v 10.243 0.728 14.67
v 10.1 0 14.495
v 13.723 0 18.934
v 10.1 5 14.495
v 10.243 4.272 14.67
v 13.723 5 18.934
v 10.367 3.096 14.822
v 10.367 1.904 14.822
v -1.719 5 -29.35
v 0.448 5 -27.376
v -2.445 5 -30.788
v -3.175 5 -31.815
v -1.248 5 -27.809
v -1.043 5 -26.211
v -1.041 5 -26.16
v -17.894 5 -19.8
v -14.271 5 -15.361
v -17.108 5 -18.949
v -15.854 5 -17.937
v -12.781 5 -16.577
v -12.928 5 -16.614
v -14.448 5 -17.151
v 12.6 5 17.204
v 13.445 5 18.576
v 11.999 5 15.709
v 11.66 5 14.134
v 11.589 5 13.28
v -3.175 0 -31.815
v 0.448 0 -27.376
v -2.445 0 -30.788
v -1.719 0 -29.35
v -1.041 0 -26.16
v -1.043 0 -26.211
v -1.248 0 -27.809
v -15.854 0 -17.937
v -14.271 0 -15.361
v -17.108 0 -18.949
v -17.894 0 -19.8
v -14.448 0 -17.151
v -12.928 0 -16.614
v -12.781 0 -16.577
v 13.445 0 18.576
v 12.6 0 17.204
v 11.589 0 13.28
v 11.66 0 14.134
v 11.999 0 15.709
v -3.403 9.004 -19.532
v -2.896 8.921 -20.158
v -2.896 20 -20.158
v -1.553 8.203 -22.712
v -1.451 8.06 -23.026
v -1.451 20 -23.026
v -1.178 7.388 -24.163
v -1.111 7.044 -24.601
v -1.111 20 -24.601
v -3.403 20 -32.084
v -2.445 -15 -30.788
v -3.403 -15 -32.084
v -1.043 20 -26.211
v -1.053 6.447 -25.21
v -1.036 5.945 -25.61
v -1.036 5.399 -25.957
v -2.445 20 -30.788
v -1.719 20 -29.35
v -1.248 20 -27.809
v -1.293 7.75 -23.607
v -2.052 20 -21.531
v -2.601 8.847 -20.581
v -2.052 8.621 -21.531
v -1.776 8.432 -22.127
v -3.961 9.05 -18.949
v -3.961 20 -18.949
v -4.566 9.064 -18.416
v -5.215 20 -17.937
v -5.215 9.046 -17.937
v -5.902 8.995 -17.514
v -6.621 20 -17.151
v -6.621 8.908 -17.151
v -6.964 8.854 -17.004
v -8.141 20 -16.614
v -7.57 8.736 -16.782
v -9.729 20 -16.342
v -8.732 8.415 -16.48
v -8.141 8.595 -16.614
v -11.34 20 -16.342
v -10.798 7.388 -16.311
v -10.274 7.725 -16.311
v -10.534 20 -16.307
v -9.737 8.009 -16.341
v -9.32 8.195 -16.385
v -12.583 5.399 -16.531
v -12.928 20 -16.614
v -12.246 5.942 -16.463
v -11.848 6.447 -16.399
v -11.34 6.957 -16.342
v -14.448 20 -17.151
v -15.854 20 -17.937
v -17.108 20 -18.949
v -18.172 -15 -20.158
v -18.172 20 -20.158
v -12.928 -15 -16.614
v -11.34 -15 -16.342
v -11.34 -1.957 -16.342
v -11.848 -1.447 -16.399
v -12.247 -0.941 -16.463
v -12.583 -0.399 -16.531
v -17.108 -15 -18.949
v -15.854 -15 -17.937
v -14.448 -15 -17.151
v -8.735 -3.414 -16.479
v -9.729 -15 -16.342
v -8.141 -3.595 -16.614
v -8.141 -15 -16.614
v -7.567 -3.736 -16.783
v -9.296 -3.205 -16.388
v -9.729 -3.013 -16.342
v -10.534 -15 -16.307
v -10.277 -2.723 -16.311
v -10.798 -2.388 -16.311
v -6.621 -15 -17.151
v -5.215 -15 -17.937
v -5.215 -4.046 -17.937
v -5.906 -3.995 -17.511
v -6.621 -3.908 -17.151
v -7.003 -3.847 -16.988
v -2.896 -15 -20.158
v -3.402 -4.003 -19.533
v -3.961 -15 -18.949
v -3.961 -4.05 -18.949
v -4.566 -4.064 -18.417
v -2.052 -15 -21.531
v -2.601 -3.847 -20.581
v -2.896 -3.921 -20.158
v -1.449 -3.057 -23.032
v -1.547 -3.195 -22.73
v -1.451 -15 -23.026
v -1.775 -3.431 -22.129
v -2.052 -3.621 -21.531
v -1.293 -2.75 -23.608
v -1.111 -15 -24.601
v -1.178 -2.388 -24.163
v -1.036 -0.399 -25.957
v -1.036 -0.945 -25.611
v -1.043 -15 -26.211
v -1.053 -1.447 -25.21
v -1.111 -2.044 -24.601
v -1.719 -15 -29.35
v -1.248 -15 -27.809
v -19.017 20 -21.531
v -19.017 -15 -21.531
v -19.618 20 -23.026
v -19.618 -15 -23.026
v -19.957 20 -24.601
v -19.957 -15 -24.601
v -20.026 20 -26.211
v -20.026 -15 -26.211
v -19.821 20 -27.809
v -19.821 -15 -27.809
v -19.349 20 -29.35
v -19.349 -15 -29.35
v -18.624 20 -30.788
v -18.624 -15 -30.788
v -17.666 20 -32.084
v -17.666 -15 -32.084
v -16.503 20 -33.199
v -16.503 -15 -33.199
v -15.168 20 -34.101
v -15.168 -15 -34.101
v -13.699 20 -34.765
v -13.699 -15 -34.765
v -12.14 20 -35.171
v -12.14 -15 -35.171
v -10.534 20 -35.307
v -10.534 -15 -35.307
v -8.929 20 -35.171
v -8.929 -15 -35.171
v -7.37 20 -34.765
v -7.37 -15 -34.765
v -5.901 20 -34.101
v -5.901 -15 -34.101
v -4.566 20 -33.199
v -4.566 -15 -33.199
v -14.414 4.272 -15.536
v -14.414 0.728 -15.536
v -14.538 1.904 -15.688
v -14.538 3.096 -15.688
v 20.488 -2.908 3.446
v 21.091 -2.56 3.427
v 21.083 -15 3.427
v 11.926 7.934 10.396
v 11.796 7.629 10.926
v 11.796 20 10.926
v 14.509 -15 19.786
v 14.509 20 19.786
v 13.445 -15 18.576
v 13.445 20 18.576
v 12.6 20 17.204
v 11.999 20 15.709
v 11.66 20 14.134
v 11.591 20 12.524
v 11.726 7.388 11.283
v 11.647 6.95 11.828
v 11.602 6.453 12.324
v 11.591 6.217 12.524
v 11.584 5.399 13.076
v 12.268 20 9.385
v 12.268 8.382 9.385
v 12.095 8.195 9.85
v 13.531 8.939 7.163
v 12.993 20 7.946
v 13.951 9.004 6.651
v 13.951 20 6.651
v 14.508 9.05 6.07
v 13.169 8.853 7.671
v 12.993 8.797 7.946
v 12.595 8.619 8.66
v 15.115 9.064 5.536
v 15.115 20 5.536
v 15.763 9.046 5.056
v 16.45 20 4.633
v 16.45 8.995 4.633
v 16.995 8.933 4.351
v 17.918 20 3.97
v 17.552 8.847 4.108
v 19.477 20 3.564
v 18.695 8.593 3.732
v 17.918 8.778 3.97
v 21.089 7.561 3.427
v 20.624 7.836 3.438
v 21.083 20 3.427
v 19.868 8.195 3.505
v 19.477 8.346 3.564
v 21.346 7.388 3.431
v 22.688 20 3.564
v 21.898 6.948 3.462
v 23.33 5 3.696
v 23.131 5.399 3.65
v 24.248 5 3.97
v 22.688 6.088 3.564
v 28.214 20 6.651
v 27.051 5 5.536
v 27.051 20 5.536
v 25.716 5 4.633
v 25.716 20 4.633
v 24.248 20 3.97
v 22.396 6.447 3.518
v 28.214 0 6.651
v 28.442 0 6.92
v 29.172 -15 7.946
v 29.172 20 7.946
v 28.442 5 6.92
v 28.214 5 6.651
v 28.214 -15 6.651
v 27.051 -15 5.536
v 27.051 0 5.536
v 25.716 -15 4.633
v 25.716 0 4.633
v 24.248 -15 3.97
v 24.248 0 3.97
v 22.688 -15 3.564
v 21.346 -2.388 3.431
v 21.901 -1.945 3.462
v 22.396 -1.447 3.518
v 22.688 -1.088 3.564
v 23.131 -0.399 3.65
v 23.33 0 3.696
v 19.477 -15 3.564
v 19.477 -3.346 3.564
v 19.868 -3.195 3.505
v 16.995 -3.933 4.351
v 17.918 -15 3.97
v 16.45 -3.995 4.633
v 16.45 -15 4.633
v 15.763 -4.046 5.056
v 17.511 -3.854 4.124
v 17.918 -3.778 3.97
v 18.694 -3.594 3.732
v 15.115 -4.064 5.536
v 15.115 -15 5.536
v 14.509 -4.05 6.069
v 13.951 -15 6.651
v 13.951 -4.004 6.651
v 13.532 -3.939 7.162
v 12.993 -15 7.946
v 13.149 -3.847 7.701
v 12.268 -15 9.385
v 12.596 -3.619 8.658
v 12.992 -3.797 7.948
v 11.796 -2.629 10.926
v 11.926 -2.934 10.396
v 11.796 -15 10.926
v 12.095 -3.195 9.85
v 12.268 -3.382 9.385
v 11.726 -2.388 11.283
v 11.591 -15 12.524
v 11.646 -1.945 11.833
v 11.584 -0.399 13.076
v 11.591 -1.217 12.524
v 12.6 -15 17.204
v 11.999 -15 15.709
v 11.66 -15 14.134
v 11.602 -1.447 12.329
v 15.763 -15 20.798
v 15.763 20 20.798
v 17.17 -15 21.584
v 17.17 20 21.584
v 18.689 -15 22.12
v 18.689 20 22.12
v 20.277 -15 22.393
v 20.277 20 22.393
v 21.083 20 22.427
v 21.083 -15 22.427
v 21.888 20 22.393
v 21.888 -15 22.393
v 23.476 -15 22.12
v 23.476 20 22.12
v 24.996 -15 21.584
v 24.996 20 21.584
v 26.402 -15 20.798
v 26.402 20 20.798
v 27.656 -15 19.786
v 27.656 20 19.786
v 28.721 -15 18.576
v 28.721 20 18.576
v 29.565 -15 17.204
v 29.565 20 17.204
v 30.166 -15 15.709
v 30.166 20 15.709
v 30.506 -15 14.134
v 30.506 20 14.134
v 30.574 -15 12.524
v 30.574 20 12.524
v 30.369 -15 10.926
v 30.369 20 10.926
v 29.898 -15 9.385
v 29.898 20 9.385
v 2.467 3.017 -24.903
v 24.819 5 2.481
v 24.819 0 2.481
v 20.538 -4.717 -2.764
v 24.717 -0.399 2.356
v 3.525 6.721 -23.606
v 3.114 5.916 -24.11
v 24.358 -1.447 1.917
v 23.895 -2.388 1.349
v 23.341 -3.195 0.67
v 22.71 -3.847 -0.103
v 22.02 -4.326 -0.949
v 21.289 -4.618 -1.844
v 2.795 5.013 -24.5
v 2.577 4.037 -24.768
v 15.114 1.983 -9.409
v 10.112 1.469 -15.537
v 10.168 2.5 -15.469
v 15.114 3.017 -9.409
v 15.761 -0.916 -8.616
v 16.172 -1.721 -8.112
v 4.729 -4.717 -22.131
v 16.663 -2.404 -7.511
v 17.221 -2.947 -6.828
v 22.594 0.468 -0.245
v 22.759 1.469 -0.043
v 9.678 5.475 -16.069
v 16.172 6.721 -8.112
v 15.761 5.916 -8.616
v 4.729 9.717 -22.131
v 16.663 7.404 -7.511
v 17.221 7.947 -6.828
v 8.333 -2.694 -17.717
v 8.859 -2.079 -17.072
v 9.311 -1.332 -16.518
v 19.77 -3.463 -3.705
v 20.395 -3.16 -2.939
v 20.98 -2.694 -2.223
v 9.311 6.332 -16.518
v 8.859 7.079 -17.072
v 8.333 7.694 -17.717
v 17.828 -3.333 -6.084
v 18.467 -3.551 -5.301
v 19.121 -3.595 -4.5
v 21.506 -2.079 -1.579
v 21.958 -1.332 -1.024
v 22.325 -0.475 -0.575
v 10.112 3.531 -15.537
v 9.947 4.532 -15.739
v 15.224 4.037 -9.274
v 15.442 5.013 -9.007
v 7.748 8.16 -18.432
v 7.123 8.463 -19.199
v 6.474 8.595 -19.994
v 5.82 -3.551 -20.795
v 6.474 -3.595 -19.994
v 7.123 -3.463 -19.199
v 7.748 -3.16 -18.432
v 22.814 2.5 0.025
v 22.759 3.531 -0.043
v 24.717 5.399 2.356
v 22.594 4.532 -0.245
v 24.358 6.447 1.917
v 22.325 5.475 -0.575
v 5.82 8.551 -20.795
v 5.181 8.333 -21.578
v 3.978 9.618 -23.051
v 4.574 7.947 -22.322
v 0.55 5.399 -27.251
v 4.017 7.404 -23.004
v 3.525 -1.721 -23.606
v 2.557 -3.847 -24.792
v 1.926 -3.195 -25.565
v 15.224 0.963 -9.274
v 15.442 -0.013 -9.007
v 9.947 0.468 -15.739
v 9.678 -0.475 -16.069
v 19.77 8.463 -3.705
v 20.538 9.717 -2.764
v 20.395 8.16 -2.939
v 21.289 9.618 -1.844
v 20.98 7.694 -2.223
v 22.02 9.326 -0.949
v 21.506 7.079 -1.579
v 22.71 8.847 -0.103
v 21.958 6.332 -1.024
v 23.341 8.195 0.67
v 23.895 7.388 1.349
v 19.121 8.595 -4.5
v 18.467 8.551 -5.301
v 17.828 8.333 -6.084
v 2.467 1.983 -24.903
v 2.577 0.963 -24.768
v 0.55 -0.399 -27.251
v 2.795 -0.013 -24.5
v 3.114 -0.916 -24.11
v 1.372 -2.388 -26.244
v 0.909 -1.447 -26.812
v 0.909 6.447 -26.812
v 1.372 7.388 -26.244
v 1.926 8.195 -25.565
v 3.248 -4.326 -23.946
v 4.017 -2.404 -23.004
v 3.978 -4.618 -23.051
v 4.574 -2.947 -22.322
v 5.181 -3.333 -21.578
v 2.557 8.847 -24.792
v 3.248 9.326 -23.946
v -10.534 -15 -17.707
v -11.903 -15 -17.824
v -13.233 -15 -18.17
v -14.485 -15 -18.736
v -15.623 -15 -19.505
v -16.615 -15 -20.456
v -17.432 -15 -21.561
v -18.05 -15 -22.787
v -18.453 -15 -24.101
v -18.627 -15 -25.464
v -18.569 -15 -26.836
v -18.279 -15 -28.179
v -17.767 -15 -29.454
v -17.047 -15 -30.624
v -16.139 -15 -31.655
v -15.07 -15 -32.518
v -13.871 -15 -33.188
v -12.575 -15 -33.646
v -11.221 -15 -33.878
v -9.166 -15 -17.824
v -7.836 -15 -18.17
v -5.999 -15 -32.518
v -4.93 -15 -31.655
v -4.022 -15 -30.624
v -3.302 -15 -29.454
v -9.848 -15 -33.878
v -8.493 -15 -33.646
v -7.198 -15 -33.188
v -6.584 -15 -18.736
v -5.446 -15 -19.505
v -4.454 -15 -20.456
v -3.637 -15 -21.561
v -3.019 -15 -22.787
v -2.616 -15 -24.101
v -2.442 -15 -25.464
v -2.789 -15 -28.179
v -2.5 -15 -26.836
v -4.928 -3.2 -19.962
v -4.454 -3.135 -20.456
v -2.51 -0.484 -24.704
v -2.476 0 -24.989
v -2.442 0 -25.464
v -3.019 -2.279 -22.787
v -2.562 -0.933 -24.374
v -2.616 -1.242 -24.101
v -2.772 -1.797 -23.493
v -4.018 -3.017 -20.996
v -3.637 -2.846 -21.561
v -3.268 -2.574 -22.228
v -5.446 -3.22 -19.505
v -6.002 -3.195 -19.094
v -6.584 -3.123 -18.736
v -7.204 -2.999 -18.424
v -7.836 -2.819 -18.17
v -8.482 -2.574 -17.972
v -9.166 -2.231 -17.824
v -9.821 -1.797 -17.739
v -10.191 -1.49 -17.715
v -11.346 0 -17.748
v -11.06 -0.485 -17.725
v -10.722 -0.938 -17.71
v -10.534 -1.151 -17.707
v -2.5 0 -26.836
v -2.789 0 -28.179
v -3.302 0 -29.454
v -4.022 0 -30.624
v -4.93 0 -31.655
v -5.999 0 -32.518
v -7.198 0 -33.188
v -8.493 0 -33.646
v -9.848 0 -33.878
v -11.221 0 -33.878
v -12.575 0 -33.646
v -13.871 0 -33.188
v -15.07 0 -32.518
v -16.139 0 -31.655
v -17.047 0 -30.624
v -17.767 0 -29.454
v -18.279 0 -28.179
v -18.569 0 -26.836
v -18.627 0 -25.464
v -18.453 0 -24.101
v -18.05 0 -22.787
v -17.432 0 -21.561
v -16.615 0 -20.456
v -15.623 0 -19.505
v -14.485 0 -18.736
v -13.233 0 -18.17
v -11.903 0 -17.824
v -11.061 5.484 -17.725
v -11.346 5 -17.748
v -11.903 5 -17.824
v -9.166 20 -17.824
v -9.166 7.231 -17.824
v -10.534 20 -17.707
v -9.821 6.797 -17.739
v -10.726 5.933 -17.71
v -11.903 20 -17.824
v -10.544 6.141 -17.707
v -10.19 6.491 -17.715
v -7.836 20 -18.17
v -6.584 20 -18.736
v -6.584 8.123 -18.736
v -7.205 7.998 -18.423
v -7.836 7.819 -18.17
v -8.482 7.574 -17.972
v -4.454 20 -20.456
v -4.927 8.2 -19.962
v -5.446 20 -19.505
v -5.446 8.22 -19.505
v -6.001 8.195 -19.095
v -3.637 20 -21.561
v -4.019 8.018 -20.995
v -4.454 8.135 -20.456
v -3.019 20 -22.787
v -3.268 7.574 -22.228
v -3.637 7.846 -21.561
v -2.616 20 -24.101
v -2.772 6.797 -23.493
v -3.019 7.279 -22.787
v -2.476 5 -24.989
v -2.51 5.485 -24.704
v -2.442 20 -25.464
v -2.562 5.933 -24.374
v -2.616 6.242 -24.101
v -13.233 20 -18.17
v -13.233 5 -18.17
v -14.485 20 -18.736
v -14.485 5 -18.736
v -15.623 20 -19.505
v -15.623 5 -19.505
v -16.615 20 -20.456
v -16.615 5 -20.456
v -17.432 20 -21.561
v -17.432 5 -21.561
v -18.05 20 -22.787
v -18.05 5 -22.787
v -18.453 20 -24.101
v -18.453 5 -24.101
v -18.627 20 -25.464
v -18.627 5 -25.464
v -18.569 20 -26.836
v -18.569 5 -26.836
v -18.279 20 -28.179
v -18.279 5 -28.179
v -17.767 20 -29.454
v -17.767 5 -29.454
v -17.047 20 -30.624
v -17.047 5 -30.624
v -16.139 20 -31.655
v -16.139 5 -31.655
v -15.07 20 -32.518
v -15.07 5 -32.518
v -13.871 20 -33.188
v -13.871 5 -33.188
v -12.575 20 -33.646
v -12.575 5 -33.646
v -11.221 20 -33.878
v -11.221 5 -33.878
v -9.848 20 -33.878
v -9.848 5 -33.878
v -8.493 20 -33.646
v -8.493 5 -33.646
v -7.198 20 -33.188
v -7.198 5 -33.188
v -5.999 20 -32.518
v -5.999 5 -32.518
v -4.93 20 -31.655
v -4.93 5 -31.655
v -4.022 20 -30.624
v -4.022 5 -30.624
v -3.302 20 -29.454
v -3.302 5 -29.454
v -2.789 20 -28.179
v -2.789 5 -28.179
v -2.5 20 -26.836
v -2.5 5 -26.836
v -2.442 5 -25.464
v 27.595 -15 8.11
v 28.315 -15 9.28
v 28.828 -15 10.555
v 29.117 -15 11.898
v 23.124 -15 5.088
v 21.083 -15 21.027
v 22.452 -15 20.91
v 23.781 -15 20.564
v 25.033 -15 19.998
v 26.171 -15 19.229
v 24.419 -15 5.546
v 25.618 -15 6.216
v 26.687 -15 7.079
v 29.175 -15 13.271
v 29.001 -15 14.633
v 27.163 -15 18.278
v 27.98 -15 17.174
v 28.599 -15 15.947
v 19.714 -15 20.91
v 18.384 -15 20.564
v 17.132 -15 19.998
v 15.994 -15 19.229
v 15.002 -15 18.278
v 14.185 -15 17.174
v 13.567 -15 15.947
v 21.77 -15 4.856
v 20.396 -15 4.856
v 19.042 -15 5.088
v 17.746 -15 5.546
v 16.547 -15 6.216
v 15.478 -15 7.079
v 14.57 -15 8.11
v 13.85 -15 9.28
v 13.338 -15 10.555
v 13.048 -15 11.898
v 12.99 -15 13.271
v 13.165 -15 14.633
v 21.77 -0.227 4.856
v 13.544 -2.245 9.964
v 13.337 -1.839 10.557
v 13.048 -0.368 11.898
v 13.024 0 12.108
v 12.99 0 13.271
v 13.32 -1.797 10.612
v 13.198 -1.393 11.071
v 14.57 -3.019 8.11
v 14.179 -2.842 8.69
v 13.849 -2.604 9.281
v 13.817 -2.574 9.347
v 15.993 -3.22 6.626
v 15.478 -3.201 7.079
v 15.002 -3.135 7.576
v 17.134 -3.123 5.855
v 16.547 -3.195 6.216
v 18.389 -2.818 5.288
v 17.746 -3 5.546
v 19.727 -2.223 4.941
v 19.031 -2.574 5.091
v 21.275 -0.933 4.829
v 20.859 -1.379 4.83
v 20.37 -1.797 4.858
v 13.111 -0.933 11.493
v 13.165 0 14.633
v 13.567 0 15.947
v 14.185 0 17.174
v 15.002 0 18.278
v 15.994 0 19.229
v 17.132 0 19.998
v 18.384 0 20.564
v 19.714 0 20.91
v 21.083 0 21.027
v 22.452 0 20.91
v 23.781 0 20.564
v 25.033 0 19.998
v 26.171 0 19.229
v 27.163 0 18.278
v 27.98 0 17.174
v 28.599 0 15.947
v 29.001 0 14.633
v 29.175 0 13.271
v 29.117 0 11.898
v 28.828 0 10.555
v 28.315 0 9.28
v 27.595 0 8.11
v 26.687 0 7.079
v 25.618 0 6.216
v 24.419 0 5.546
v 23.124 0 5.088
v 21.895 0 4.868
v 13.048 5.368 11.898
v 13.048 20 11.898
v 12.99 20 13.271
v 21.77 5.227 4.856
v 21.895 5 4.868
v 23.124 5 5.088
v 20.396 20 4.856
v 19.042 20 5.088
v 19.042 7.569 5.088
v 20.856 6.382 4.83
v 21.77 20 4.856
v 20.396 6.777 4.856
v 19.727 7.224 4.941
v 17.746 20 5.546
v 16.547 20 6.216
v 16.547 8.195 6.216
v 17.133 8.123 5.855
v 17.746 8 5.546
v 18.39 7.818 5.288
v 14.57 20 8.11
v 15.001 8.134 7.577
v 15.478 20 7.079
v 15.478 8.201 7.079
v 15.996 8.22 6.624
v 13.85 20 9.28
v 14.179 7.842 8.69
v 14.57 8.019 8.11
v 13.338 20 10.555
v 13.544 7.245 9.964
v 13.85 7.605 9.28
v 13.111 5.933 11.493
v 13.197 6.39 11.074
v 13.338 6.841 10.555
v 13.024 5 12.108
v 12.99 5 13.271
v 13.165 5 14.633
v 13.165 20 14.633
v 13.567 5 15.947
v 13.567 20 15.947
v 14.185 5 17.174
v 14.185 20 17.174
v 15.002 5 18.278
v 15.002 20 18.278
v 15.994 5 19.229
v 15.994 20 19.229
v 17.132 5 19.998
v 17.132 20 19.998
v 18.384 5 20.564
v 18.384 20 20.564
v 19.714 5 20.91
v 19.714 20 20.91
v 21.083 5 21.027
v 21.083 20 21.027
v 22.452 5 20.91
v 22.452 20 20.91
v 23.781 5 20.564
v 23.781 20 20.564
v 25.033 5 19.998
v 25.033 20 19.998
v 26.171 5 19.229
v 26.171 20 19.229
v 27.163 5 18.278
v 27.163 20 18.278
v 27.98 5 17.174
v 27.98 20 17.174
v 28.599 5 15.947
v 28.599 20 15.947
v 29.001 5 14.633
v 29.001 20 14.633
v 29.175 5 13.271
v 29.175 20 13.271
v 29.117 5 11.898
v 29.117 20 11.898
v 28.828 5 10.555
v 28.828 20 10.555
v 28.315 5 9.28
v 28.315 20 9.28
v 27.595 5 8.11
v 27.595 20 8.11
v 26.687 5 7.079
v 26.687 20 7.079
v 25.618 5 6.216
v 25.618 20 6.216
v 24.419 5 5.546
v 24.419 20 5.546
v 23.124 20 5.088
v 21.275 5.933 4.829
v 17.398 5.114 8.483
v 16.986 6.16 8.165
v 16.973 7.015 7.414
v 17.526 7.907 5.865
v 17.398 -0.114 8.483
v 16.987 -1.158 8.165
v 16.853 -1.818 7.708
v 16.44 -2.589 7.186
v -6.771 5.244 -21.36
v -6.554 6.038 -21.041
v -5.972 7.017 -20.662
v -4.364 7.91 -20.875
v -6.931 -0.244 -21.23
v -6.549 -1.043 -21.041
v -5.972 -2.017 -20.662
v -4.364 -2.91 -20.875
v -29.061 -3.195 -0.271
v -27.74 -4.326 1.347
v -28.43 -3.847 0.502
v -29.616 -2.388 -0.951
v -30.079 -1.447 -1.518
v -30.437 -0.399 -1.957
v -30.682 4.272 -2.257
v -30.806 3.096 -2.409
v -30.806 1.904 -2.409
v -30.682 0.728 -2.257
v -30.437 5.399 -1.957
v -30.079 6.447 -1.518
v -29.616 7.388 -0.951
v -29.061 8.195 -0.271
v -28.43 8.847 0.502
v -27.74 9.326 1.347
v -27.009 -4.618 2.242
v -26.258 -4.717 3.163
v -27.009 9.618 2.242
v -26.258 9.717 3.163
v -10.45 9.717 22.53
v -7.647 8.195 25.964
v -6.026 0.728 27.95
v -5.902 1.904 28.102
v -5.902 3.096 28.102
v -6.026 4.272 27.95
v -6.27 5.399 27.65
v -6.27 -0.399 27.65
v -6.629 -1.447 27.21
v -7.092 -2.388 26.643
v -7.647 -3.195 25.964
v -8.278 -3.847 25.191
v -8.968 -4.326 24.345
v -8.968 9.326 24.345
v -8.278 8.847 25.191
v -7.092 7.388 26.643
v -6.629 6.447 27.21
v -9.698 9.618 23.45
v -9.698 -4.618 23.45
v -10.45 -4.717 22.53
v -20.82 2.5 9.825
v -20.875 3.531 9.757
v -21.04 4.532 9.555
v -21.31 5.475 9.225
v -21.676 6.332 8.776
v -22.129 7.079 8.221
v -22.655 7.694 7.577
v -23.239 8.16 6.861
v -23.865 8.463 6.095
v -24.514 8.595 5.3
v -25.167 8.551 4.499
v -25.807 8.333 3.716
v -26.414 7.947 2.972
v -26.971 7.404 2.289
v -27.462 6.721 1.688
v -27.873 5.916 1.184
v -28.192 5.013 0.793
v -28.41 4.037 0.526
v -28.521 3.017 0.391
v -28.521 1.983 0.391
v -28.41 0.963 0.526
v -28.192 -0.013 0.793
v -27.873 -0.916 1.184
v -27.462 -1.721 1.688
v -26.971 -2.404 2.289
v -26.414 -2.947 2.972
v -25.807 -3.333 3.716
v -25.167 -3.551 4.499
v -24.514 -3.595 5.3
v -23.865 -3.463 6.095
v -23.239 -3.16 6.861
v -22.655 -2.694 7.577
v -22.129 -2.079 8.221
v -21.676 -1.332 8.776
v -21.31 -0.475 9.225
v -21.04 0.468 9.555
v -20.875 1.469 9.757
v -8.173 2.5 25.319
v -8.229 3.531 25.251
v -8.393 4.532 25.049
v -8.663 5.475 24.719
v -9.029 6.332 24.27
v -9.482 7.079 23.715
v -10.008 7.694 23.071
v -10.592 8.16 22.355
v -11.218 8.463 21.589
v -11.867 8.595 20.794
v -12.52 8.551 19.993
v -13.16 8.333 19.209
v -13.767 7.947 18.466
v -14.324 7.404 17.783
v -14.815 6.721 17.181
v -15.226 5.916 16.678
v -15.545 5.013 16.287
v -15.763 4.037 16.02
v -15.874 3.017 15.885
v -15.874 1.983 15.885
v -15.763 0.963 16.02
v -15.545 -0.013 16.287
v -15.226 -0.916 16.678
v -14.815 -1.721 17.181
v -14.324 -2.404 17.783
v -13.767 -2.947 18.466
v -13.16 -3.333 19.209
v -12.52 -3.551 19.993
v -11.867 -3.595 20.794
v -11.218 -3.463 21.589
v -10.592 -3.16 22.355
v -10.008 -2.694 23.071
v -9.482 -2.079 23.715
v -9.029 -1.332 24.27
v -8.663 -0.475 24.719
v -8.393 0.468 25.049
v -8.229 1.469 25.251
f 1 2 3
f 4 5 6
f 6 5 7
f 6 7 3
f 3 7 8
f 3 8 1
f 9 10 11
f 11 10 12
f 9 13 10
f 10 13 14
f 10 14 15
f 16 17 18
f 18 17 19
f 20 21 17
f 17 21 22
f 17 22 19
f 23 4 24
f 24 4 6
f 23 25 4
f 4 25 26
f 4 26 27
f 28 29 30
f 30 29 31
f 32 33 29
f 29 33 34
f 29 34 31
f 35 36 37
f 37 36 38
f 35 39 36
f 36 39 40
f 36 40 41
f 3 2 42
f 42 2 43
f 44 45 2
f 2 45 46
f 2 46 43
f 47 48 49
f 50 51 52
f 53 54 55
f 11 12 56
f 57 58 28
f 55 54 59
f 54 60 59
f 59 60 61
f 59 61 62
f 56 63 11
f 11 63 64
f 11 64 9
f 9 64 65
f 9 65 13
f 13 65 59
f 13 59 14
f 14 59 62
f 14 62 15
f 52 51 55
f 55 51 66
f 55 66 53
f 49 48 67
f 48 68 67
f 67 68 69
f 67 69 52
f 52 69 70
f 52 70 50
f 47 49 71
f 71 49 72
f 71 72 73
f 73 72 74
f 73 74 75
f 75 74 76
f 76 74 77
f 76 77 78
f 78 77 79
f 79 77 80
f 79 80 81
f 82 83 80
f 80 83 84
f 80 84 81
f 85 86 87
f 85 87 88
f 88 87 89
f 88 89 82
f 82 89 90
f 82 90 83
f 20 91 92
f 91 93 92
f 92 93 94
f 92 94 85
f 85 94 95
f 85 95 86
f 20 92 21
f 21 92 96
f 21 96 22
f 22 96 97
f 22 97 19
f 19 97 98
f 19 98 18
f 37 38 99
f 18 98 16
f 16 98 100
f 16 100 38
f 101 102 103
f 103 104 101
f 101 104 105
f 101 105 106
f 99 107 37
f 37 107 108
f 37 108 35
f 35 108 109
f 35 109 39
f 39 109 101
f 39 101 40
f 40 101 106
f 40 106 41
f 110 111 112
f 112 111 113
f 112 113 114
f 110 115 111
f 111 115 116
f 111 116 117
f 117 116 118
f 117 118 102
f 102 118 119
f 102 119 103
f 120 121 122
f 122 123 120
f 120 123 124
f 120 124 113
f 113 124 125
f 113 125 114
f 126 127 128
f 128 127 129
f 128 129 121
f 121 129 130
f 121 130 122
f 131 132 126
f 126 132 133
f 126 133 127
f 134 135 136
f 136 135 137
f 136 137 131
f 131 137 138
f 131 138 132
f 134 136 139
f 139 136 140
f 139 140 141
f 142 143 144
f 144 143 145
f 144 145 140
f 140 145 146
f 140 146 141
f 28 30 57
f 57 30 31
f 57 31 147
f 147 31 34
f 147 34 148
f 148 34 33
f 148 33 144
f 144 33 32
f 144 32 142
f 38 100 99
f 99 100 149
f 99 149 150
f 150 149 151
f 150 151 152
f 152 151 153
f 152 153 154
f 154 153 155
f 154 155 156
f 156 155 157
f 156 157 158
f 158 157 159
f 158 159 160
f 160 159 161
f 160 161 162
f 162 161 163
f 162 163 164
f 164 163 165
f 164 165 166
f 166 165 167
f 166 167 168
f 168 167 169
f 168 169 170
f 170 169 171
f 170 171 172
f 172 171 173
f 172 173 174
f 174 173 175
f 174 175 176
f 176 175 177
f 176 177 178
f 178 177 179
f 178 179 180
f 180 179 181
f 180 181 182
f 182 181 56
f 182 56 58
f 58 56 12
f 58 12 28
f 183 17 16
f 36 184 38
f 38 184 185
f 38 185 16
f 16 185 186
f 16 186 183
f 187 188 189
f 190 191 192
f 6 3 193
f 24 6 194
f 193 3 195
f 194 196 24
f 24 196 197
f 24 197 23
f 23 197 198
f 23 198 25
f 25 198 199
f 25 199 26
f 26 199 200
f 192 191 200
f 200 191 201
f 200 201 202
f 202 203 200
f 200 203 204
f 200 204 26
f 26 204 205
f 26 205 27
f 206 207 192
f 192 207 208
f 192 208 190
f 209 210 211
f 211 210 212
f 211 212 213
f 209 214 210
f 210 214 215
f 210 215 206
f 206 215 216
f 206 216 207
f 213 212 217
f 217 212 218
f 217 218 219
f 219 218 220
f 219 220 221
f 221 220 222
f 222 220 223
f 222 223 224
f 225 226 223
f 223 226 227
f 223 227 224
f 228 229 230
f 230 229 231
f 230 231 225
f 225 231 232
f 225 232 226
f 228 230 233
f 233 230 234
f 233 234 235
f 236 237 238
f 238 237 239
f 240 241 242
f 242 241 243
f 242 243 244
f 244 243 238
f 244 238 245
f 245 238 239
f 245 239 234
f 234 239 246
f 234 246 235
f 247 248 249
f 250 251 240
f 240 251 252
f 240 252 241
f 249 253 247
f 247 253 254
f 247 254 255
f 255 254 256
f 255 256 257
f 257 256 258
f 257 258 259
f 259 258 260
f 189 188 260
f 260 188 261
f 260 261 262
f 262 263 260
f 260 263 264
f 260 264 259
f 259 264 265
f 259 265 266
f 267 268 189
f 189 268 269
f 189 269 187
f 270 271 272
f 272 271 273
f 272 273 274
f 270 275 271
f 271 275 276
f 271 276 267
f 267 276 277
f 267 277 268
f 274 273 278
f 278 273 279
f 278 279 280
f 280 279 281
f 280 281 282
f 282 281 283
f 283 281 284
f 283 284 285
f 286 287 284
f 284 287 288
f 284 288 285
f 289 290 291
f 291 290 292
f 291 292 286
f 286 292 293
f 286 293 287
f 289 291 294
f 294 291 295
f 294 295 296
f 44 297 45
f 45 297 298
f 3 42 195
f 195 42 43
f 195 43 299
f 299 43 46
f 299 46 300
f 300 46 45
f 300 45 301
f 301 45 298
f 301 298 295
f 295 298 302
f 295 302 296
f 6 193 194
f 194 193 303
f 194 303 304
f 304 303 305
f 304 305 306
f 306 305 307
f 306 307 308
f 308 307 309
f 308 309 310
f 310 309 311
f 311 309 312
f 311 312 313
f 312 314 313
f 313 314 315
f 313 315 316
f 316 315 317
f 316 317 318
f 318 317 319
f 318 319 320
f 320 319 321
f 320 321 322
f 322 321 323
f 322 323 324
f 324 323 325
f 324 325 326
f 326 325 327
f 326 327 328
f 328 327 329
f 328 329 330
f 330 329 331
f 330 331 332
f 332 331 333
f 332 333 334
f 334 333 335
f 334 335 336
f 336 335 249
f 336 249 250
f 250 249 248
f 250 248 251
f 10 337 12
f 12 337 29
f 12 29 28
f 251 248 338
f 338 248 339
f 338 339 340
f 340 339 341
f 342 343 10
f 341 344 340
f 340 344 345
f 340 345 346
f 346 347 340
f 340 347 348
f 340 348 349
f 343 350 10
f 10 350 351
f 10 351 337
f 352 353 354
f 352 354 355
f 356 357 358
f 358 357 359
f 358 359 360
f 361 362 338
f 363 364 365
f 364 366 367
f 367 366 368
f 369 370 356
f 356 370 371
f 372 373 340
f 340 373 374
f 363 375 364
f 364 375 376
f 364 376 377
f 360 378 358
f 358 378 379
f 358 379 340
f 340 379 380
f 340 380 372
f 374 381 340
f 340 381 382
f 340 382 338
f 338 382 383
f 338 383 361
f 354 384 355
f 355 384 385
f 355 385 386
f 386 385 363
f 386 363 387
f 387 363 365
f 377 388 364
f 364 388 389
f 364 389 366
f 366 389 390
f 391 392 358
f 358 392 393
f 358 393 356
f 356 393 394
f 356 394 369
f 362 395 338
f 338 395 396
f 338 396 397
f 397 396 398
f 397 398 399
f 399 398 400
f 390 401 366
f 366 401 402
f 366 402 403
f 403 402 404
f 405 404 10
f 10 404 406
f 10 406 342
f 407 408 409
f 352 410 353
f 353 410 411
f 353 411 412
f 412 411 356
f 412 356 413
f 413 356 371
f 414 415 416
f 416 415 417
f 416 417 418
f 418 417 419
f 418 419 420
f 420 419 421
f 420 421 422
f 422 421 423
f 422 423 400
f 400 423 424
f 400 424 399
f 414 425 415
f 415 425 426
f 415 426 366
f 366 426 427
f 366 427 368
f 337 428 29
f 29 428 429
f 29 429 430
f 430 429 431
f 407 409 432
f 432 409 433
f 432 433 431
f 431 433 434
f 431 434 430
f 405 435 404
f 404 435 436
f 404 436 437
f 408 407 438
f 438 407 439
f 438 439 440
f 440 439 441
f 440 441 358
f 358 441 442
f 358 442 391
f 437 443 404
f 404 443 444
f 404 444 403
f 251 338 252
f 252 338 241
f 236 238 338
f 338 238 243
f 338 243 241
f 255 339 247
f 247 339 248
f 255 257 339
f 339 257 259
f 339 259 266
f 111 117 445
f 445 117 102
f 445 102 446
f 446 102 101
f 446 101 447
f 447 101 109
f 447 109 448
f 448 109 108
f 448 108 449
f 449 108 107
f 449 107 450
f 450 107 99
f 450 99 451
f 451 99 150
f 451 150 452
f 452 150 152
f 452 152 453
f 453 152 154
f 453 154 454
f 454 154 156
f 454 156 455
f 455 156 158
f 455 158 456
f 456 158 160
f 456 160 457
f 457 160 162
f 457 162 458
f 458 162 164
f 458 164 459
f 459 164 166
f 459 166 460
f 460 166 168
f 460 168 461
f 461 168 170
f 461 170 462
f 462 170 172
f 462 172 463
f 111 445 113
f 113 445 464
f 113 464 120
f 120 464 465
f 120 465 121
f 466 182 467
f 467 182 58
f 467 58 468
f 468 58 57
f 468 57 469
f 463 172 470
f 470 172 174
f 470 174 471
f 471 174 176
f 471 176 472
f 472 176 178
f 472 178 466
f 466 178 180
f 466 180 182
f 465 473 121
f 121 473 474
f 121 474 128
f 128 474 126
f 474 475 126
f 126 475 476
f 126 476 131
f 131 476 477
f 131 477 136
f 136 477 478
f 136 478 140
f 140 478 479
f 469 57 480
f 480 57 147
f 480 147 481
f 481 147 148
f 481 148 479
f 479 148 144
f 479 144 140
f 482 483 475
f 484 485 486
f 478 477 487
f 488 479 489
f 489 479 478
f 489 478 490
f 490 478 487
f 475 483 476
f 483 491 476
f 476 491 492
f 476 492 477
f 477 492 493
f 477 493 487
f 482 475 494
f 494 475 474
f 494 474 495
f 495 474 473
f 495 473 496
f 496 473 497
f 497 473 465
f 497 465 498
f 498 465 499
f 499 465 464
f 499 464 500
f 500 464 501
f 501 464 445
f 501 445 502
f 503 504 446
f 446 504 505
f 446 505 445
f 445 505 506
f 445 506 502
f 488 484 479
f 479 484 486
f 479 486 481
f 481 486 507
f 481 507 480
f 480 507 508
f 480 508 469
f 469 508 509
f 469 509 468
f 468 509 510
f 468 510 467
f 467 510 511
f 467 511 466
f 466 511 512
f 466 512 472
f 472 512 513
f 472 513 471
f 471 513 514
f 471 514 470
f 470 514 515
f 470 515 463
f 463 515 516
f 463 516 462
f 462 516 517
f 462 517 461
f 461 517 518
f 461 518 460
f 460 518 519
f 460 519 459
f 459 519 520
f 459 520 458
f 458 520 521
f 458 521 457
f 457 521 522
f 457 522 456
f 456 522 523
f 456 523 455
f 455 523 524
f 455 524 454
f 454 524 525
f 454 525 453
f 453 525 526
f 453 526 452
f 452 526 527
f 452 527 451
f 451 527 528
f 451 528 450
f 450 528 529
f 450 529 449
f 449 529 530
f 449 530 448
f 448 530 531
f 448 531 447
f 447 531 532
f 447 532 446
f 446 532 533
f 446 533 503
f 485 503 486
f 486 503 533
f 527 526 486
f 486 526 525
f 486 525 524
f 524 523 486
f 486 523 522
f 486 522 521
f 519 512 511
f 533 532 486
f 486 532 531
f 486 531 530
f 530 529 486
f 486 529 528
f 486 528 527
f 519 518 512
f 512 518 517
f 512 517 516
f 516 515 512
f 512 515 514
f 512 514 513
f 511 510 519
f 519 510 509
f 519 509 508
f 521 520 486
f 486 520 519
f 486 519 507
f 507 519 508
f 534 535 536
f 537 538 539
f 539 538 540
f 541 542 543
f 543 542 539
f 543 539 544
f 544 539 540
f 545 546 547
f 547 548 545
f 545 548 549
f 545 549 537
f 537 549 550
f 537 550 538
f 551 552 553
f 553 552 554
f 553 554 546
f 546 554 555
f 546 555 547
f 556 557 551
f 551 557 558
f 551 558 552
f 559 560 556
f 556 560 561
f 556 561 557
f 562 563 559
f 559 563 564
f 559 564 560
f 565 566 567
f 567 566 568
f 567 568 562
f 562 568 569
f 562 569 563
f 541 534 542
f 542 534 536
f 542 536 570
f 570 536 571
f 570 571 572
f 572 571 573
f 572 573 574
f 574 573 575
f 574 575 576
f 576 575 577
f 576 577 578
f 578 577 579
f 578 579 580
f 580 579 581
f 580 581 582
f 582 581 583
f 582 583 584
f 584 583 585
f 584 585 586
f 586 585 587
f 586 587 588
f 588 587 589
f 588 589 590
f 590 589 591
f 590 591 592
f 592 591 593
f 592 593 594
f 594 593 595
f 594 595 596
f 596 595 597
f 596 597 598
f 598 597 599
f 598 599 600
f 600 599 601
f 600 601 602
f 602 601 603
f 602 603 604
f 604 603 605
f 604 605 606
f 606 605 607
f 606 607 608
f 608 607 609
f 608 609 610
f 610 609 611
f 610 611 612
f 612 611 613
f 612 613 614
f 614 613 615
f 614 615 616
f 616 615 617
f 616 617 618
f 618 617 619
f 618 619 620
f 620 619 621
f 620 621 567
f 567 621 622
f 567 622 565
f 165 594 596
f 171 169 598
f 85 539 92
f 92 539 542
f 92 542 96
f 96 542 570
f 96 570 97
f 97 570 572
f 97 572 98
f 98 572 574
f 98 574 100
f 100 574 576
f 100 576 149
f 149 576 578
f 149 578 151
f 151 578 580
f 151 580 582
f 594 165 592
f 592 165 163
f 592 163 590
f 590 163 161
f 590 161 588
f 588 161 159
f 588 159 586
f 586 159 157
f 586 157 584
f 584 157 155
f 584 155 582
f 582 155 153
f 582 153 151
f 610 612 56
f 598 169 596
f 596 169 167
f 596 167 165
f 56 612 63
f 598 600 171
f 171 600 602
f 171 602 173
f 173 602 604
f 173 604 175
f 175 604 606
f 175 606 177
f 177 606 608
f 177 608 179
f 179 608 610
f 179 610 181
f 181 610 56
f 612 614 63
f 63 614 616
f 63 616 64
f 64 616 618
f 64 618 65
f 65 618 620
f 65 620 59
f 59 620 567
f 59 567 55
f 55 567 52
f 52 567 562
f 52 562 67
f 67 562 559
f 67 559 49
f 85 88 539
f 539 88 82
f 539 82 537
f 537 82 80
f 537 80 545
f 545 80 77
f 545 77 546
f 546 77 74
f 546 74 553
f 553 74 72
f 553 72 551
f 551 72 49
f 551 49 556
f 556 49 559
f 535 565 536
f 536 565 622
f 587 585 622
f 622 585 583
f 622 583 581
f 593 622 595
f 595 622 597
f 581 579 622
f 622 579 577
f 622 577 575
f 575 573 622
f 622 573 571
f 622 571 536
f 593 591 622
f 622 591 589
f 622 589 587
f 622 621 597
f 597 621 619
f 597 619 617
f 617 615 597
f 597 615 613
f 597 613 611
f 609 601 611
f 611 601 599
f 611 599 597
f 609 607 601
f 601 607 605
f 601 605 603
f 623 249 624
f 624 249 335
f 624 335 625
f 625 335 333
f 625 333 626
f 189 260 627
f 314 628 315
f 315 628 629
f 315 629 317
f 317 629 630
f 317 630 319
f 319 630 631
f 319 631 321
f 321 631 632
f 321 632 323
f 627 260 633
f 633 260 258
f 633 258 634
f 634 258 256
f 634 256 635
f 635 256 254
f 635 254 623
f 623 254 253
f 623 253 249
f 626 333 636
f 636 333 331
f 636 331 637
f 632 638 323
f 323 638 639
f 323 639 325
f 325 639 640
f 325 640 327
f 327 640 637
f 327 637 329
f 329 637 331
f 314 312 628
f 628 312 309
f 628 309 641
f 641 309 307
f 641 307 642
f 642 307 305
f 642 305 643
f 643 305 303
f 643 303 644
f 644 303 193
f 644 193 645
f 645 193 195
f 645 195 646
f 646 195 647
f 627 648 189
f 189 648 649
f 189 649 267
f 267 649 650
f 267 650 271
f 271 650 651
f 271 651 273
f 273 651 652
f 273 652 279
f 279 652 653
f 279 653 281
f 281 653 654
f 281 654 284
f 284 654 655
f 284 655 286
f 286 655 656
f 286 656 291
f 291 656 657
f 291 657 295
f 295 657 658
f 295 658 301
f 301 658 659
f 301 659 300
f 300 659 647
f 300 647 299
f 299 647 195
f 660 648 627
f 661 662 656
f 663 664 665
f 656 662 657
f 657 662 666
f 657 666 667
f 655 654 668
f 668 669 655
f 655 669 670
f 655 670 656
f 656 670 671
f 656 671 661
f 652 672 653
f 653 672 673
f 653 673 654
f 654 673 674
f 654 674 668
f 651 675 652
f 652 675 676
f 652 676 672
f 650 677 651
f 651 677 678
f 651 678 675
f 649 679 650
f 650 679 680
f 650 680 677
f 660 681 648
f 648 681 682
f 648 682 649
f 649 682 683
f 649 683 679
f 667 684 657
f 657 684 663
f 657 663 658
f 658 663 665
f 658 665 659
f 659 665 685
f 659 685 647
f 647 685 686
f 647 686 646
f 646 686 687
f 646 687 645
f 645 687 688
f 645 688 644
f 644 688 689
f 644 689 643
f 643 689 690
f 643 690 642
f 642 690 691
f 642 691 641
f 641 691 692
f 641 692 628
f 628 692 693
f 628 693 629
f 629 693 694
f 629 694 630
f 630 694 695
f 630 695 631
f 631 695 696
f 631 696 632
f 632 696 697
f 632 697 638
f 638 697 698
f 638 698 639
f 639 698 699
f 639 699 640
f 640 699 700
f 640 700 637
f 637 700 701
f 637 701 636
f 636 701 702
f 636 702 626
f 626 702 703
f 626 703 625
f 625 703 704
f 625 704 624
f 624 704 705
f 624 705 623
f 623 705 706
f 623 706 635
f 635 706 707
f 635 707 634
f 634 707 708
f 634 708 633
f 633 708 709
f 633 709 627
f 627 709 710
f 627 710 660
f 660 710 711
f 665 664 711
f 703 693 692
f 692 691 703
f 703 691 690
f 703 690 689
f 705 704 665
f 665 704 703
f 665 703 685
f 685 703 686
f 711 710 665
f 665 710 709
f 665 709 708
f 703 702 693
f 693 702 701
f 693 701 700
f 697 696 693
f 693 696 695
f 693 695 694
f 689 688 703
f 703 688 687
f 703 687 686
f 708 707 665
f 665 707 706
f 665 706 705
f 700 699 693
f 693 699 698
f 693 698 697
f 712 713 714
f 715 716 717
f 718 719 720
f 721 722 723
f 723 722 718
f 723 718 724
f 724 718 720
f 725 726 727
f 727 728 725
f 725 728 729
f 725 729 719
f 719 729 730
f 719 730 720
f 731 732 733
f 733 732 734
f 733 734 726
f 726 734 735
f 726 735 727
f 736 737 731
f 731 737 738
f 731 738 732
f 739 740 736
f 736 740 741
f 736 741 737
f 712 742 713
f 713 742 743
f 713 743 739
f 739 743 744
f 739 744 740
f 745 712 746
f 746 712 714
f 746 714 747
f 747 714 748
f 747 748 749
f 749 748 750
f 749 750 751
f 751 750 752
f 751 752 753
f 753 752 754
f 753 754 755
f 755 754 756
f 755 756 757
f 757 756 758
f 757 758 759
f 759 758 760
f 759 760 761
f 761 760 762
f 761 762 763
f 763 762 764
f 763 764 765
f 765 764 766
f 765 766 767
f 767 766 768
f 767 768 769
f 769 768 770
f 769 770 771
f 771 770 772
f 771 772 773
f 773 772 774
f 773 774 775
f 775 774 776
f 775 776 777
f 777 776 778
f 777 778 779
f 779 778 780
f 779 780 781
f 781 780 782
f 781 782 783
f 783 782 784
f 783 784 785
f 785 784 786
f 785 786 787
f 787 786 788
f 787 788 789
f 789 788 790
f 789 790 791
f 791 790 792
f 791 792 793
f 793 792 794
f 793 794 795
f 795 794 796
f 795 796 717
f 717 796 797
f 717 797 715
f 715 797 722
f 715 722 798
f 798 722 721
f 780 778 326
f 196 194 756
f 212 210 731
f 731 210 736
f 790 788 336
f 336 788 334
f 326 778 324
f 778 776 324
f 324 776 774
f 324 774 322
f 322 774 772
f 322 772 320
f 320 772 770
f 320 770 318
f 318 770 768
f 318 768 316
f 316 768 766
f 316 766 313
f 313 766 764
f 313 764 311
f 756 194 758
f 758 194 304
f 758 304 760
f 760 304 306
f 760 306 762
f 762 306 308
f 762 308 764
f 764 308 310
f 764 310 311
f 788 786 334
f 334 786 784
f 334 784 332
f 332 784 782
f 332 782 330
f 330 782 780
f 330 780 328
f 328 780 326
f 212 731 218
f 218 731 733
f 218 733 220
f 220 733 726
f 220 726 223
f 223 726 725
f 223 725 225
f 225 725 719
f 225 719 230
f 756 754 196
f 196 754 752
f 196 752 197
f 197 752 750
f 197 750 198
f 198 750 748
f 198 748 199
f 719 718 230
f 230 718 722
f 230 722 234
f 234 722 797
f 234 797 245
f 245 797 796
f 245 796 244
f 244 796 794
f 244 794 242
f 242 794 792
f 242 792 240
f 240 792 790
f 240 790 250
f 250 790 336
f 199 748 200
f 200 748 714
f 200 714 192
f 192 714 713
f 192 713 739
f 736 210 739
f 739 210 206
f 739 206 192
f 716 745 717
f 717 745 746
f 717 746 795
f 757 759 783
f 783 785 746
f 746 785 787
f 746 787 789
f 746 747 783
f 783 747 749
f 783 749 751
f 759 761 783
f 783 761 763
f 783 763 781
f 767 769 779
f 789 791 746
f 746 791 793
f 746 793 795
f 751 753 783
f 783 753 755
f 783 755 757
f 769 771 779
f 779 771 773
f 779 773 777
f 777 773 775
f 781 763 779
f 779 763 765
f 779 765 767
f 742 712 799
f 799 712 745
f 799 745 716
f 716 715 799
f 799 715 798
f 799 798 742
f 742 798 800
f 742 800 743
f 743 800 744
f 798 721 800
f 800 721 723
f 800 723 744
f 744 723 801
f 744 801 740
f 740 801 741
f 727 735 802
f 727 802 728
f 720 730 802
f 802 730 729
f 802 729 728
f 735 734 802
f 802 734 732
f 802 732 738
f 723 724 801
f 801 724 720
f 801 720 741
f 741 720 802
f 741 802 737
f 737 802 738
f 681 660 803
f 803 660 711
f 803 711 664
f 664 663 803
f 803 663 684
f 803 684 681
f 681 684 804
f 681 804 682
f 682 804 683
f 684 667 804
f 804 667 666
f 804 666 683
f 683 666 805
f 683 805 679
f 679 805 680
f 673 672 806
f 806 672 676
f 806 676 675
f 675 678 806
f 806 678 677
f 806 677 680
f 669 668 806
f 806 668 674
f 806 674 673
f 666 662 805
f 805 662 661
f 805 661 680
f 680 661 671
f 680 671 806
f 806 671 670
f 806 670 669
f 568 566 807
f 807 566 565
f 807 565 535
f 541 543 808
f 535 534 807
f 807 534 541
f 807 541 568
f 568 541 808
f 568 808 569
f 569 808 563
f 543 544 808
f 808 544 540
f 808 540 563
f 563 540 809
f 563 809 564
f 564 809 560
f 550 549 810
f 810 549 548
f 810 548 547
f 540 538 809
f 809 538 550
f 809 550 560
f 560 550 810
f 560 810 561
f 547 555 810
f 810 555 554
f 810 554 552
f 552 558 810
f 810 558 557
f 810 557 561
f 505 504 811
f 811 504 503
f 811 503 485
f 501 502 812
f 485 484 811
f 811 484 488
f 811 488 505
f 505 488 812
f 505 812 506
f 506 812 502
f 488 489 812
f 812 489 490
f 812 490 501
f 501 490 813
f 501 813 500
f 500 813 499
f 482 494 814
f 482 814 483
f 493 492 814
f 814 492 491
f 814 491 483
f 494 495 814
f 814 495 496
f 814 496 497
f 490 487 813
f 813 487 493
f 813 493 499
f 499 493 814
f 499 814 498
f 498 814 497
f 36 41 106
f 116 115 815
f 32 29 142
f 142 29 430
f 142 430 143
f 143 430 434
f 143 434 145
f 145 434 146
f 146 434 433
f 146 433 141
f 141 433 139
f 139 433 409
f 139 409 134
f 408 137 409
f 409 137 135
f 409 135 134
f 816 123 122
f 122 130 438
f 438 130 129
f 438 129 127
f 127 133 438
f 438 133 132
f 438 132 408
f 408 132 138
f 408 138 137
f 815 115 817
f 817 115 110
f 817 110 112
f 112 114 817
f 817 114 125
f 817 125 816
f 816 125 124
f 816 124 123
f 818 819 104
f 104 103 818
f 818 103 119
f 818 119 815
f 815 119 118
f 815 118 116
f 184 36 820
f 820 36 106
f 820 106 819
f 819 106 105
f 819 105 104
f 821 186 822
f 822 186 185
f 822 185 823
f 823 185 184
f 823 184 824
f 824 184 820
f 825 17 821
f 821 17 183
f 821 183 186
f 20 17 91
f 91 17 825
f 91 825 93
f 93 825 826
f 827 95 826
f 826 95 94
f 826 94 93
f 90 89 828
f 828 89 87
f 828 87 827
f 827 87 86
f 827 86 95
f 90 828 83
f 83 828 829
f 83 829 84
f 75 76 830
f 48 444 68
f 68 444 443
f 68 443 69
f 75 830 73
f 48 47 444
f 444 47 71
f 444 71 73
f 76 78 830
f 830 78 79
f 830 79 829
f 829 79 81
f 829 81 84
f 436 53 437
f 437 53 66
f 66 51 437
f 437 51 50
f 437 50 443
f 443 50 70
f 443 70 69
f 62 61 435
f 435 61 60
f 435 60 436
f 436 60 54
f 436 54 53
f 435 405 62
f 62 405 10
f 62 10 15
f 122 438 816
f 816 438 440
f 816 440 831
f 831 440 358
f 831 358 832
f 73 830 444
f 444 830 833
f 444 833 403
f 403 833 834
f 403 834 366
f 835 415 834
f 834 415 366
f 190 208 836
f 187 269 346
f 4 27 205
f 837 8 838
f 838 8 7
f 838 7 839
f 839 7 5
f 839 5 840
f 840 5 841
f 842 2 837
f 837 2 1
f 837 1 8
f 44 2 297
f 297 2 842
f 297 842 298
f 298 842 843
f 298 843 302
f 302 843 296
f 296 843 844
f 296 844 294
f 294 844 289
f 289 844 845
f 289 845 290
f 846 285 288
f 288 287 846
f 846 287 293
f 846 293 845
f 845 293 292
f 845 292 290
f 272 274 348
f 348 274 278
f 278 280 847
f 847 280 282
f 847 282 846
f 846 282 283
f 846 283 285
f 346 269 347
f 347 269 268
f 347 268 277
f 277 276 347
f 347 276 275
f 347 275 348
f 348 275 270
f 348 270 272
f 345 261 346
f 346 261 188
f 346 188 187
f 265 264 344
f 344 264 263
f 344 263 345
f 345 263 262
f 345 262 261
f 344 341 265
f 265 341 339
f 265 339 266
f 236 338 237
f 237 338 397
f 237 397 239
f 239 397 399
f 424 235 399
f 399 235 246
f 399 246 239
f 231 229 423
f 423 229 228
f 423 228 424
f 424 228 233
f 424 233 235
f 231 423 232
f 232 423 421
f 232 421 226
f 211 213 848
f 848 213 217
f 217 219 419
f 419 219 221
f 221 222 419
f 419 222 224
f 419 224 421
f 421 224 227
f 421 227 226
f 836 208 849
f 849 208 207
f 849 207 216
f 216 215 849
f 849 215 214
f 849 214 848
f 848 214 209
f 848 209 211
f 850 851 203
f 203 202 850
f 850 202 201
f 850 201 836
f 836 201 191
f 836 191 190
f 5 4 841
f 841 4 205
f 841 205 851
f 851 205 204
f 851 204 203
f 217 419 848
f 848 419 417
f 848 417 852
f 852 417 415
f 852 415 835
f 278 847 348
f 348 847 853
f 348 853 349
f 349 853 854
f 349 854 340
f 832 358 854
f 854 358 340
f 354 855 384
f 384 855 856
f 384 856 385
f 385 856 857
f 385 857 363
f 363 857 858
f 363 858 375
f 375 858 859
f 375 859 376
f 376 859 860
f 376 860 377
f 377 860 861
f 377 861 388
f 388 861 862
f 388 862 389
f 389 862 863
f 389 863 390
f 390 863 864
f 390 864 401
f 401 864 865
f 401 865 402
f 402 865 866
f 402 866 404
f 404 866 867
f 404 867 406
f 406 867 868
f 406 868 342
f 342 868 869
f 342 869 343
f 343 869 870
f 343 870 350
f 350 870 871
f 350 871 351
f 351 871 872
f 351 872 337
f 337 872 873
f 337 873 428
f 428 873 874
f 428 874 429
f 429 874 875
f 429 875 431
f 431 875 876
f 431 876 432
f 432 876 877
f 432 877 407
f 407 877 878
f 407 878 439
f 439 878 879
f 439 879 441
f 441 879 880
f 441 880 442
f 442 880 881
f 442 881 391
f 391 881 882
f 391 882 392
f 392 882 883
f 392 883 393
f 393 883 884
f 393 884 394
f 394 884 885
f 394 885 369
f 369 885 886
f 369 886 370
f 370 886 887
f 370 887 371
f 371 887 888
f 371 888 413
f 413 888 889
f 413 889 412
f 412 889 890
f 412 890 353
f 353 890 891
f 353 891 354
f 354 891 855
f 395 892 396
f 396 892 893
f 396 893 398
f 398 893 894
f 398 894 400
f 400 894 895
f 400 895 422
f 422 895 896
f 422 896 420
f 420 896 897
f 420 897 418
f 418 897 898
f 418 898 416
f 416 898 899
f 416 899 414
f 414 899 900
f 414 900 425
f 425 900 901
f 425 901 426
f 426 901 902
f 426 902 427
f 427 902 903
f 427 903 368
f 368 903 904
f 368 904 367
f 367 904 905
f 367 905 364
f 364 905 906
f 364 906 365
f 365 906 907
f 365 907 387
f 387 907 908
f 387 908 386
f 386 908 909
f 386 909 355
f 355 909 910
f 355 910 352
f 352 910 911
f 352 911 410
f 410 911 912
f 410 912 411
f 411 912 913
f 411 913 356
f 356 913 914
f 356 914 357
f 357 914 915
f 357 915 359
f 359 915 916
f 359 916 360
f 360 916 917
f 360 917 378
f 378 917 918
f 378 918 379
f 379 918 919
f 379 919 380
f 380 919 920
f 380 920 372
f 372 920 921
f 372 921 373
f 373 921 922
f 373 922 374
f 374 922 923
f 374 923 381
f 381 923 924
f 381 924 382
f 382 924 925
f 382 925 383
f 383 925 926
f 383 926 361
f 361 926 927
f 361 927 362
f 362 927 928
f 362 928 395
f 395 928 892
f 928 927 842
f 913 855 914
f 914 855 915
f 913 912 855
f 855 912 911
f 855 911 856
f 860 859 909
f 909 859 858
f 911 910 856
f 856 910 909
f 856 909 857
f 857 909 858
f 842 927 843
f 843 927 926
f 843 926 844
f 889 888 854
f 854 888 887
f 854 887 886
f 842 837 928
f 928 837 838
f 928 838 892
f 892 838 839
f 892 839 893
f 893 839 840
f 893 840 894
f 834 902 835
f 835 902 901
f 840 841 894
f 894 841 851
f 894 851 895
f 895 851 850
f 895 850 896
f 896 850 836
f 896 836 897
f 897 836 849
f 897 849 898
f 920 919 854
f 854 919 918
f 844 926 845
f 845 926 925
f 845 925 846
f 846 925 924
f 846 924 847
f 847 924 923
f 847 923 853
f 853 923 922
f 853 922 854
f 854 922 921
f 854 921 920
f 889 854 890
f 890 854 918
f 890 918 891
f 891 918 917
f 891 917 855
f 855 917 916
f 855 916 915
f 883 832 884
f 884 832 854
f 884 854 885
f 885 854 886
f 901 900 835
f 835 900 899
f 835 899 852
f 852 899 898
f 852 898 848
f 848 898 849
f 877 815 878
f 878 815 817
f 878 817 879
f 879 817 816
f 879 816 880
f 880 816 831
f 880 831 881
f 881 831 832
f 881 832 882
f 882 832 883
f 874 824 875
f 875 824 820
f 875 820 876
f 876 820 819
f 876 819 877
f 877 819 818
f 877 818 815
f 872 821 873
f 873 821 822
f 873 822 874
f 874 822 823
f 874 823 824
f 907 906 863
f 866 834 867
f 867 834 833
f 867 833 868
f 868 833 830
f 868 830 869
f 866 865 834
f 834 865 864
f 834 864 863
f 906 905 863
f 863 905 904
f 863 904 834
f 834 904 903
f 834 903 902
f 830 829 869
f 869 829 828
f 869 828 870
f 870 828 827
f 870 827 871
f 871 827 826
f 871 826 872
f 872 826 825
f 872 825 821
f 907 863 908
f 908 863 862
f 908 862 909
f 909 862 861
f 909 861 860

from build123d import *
from build123d.topology import SkipClean

# Parameters (mm, degrees)
BOSS_EXTRUDE2_DEPTH      = 5
BOSS_EXTRUDE3_DEPTH      = 15
BOSS_EXTRUDE3_DEPTH_BACK = 20
SKETCH4_R                = 9.5
SKETCH4_R_2              = 8.1
BOSS_EXTRUDE4_DEPTH      = 21
BOSS_EXTRUDE4_DEPTH_BACK = 19
SKETCH5_R                = 6.1
CUT_EXTRUDE2_START       = -41
SKETCH6_R                = 6.1
CUT_EXTRUDE2_DEPTH       = 41


with BuildPart() as part:
    # Sketch3 → Boss-Extrude2 (new body)
    with BuildSketch(Plane(origin=(0, 0, 0), x_dir=(1, 0, 0), z_dir=(0, 1, 0))):
        with BuildLine():
            Line((-3.174904091, 31.814719718), (28.442244127, -6.919708618))
            ThreePointArc((28.442244127, -6.919708618), (27.089960905, -20.286508163), (13.723161359, -18.934224941))
            Line((13.723161359, -18.934224941), (-17.893986859, 19.800203396))
            ThreePointArc((-17.893986859, 19.800203396), (-16.541703636, 33.167002941), (-3.174904091, 31.814719718))
        make_face()
    extrude(amount=BOSS_EXTRUDE2_DEPTH)

    # Sketch4 → Boss-Extrude3 (add, two sides: drawn at the far end of the back side and taken through both)
    # profile 1 of 2: a face of its own
    with SkipClean():  # the faces are left unmerged after this step: merging them gives an invalid solid
        with BuildSketch(Plane(origin=(0, 5, 0), x_dir=(1, 0, 0), z_dir=(0, 1, 0)).offset(-BOSS_EXTRUDE3_DEPTH_BACK)):
            with Locations((-10.534445475, 25.807461557)):
                Circle(SKETCH4_R)
            with Locations((-10.534445475, 25.807461557)):
                Circle(SKETCH4_R_2, mode=Mode.SUBTRACT)
        # profile 2 of 2: a face of its own
        with BuildSketch(Plane(origin=(0, 5, 0), x_dir=(1, 0, 0), z_dir=(0, 1, 0)).offset(-BOSS_EXTRUDE3_DEPTH_BACK)):
            with Locations((21.082702743, -12.92696678)):
                Circle(SKETCH4_R)
            with Locations((21.082702743, -12.92696678)):
                Circle(SKETCH4_R_2, mode=Mode.SUBTRACT)
        extrude(amount=BOSS_EXTRUDE3_DEPTH + BOSS_EXTRUDE3_DEPTH_BACK)

    # Sketch5 → Boss-Extrude4 (add, two sides: drawn at the far end of the back side and taken through both)
    with SkipClean():  # the faces are left unmerged after this step: merging them gives an invalid solid
        with BuildSketch(Plane(origin=(-1.03943662, 0, 0.848444732), x_dir=(0.6323429643622943, 0, 0.774688566729564), z_dir=(-0.774688566729564, 0, 0.6323429643622943)).offset(-BOSS_EXTRUDE4_DEPTH_BACK)):
            with BuildLine():
                Line((-14.154127884, 9.71687123), (10.845872116, 9.71687123))
                ThreePointArc((10.845872116, 9.71687123), (18.062743346, 2.5), (10.845872116, -4.71687123))
                Line((10.845872116, -4.71687123), (-14.154127884, -4.71687123))
                ThreePointArc((-14.154127884, -4.71687123), (-21.370999114, 2.5), (-14.154127884, 9.71687123))
            make_face()
            with Locations((-11.654127884, 2.5)):
                Circle(SKETCH5_R, mode=Mode.SUBTRACT)
            with Locations((8.345872116, 2.5)):
                Circle(SKETCH5_R, mode=Mode.SUBTRACT)
        extrude(amount=BOSS_EXTRUDE4_DEPTH + BOSS_EXTRUDE4_DEPTH_BACK)

    # Sketch6 → Cut-Extrude2 (cut)
    with SkipClean():  # the faces are left unmerged after this step: merging them gives an invalid solid
        with BuildSketch(Plane(origin=(-17.307896522, 0, 14.127646984), x_dir=(0.6323429643622943, 0, 0.774688566729564), z_dir=(-0.774688566729564, 0, 0.6323429643622943)).offset(CUT_EXTRUDE2_START)):
            with Locations((-11.654127884, 2.5)):
                Circle(SKETCH6_R)
            with Locations((8.345872116, 2.5)):
                Circle(SKETCH6_R)
        extrude(amount=CUT_EXTRUDE2_DEPTH, mode=Mode.SUBTRACT)


solid = part.part
